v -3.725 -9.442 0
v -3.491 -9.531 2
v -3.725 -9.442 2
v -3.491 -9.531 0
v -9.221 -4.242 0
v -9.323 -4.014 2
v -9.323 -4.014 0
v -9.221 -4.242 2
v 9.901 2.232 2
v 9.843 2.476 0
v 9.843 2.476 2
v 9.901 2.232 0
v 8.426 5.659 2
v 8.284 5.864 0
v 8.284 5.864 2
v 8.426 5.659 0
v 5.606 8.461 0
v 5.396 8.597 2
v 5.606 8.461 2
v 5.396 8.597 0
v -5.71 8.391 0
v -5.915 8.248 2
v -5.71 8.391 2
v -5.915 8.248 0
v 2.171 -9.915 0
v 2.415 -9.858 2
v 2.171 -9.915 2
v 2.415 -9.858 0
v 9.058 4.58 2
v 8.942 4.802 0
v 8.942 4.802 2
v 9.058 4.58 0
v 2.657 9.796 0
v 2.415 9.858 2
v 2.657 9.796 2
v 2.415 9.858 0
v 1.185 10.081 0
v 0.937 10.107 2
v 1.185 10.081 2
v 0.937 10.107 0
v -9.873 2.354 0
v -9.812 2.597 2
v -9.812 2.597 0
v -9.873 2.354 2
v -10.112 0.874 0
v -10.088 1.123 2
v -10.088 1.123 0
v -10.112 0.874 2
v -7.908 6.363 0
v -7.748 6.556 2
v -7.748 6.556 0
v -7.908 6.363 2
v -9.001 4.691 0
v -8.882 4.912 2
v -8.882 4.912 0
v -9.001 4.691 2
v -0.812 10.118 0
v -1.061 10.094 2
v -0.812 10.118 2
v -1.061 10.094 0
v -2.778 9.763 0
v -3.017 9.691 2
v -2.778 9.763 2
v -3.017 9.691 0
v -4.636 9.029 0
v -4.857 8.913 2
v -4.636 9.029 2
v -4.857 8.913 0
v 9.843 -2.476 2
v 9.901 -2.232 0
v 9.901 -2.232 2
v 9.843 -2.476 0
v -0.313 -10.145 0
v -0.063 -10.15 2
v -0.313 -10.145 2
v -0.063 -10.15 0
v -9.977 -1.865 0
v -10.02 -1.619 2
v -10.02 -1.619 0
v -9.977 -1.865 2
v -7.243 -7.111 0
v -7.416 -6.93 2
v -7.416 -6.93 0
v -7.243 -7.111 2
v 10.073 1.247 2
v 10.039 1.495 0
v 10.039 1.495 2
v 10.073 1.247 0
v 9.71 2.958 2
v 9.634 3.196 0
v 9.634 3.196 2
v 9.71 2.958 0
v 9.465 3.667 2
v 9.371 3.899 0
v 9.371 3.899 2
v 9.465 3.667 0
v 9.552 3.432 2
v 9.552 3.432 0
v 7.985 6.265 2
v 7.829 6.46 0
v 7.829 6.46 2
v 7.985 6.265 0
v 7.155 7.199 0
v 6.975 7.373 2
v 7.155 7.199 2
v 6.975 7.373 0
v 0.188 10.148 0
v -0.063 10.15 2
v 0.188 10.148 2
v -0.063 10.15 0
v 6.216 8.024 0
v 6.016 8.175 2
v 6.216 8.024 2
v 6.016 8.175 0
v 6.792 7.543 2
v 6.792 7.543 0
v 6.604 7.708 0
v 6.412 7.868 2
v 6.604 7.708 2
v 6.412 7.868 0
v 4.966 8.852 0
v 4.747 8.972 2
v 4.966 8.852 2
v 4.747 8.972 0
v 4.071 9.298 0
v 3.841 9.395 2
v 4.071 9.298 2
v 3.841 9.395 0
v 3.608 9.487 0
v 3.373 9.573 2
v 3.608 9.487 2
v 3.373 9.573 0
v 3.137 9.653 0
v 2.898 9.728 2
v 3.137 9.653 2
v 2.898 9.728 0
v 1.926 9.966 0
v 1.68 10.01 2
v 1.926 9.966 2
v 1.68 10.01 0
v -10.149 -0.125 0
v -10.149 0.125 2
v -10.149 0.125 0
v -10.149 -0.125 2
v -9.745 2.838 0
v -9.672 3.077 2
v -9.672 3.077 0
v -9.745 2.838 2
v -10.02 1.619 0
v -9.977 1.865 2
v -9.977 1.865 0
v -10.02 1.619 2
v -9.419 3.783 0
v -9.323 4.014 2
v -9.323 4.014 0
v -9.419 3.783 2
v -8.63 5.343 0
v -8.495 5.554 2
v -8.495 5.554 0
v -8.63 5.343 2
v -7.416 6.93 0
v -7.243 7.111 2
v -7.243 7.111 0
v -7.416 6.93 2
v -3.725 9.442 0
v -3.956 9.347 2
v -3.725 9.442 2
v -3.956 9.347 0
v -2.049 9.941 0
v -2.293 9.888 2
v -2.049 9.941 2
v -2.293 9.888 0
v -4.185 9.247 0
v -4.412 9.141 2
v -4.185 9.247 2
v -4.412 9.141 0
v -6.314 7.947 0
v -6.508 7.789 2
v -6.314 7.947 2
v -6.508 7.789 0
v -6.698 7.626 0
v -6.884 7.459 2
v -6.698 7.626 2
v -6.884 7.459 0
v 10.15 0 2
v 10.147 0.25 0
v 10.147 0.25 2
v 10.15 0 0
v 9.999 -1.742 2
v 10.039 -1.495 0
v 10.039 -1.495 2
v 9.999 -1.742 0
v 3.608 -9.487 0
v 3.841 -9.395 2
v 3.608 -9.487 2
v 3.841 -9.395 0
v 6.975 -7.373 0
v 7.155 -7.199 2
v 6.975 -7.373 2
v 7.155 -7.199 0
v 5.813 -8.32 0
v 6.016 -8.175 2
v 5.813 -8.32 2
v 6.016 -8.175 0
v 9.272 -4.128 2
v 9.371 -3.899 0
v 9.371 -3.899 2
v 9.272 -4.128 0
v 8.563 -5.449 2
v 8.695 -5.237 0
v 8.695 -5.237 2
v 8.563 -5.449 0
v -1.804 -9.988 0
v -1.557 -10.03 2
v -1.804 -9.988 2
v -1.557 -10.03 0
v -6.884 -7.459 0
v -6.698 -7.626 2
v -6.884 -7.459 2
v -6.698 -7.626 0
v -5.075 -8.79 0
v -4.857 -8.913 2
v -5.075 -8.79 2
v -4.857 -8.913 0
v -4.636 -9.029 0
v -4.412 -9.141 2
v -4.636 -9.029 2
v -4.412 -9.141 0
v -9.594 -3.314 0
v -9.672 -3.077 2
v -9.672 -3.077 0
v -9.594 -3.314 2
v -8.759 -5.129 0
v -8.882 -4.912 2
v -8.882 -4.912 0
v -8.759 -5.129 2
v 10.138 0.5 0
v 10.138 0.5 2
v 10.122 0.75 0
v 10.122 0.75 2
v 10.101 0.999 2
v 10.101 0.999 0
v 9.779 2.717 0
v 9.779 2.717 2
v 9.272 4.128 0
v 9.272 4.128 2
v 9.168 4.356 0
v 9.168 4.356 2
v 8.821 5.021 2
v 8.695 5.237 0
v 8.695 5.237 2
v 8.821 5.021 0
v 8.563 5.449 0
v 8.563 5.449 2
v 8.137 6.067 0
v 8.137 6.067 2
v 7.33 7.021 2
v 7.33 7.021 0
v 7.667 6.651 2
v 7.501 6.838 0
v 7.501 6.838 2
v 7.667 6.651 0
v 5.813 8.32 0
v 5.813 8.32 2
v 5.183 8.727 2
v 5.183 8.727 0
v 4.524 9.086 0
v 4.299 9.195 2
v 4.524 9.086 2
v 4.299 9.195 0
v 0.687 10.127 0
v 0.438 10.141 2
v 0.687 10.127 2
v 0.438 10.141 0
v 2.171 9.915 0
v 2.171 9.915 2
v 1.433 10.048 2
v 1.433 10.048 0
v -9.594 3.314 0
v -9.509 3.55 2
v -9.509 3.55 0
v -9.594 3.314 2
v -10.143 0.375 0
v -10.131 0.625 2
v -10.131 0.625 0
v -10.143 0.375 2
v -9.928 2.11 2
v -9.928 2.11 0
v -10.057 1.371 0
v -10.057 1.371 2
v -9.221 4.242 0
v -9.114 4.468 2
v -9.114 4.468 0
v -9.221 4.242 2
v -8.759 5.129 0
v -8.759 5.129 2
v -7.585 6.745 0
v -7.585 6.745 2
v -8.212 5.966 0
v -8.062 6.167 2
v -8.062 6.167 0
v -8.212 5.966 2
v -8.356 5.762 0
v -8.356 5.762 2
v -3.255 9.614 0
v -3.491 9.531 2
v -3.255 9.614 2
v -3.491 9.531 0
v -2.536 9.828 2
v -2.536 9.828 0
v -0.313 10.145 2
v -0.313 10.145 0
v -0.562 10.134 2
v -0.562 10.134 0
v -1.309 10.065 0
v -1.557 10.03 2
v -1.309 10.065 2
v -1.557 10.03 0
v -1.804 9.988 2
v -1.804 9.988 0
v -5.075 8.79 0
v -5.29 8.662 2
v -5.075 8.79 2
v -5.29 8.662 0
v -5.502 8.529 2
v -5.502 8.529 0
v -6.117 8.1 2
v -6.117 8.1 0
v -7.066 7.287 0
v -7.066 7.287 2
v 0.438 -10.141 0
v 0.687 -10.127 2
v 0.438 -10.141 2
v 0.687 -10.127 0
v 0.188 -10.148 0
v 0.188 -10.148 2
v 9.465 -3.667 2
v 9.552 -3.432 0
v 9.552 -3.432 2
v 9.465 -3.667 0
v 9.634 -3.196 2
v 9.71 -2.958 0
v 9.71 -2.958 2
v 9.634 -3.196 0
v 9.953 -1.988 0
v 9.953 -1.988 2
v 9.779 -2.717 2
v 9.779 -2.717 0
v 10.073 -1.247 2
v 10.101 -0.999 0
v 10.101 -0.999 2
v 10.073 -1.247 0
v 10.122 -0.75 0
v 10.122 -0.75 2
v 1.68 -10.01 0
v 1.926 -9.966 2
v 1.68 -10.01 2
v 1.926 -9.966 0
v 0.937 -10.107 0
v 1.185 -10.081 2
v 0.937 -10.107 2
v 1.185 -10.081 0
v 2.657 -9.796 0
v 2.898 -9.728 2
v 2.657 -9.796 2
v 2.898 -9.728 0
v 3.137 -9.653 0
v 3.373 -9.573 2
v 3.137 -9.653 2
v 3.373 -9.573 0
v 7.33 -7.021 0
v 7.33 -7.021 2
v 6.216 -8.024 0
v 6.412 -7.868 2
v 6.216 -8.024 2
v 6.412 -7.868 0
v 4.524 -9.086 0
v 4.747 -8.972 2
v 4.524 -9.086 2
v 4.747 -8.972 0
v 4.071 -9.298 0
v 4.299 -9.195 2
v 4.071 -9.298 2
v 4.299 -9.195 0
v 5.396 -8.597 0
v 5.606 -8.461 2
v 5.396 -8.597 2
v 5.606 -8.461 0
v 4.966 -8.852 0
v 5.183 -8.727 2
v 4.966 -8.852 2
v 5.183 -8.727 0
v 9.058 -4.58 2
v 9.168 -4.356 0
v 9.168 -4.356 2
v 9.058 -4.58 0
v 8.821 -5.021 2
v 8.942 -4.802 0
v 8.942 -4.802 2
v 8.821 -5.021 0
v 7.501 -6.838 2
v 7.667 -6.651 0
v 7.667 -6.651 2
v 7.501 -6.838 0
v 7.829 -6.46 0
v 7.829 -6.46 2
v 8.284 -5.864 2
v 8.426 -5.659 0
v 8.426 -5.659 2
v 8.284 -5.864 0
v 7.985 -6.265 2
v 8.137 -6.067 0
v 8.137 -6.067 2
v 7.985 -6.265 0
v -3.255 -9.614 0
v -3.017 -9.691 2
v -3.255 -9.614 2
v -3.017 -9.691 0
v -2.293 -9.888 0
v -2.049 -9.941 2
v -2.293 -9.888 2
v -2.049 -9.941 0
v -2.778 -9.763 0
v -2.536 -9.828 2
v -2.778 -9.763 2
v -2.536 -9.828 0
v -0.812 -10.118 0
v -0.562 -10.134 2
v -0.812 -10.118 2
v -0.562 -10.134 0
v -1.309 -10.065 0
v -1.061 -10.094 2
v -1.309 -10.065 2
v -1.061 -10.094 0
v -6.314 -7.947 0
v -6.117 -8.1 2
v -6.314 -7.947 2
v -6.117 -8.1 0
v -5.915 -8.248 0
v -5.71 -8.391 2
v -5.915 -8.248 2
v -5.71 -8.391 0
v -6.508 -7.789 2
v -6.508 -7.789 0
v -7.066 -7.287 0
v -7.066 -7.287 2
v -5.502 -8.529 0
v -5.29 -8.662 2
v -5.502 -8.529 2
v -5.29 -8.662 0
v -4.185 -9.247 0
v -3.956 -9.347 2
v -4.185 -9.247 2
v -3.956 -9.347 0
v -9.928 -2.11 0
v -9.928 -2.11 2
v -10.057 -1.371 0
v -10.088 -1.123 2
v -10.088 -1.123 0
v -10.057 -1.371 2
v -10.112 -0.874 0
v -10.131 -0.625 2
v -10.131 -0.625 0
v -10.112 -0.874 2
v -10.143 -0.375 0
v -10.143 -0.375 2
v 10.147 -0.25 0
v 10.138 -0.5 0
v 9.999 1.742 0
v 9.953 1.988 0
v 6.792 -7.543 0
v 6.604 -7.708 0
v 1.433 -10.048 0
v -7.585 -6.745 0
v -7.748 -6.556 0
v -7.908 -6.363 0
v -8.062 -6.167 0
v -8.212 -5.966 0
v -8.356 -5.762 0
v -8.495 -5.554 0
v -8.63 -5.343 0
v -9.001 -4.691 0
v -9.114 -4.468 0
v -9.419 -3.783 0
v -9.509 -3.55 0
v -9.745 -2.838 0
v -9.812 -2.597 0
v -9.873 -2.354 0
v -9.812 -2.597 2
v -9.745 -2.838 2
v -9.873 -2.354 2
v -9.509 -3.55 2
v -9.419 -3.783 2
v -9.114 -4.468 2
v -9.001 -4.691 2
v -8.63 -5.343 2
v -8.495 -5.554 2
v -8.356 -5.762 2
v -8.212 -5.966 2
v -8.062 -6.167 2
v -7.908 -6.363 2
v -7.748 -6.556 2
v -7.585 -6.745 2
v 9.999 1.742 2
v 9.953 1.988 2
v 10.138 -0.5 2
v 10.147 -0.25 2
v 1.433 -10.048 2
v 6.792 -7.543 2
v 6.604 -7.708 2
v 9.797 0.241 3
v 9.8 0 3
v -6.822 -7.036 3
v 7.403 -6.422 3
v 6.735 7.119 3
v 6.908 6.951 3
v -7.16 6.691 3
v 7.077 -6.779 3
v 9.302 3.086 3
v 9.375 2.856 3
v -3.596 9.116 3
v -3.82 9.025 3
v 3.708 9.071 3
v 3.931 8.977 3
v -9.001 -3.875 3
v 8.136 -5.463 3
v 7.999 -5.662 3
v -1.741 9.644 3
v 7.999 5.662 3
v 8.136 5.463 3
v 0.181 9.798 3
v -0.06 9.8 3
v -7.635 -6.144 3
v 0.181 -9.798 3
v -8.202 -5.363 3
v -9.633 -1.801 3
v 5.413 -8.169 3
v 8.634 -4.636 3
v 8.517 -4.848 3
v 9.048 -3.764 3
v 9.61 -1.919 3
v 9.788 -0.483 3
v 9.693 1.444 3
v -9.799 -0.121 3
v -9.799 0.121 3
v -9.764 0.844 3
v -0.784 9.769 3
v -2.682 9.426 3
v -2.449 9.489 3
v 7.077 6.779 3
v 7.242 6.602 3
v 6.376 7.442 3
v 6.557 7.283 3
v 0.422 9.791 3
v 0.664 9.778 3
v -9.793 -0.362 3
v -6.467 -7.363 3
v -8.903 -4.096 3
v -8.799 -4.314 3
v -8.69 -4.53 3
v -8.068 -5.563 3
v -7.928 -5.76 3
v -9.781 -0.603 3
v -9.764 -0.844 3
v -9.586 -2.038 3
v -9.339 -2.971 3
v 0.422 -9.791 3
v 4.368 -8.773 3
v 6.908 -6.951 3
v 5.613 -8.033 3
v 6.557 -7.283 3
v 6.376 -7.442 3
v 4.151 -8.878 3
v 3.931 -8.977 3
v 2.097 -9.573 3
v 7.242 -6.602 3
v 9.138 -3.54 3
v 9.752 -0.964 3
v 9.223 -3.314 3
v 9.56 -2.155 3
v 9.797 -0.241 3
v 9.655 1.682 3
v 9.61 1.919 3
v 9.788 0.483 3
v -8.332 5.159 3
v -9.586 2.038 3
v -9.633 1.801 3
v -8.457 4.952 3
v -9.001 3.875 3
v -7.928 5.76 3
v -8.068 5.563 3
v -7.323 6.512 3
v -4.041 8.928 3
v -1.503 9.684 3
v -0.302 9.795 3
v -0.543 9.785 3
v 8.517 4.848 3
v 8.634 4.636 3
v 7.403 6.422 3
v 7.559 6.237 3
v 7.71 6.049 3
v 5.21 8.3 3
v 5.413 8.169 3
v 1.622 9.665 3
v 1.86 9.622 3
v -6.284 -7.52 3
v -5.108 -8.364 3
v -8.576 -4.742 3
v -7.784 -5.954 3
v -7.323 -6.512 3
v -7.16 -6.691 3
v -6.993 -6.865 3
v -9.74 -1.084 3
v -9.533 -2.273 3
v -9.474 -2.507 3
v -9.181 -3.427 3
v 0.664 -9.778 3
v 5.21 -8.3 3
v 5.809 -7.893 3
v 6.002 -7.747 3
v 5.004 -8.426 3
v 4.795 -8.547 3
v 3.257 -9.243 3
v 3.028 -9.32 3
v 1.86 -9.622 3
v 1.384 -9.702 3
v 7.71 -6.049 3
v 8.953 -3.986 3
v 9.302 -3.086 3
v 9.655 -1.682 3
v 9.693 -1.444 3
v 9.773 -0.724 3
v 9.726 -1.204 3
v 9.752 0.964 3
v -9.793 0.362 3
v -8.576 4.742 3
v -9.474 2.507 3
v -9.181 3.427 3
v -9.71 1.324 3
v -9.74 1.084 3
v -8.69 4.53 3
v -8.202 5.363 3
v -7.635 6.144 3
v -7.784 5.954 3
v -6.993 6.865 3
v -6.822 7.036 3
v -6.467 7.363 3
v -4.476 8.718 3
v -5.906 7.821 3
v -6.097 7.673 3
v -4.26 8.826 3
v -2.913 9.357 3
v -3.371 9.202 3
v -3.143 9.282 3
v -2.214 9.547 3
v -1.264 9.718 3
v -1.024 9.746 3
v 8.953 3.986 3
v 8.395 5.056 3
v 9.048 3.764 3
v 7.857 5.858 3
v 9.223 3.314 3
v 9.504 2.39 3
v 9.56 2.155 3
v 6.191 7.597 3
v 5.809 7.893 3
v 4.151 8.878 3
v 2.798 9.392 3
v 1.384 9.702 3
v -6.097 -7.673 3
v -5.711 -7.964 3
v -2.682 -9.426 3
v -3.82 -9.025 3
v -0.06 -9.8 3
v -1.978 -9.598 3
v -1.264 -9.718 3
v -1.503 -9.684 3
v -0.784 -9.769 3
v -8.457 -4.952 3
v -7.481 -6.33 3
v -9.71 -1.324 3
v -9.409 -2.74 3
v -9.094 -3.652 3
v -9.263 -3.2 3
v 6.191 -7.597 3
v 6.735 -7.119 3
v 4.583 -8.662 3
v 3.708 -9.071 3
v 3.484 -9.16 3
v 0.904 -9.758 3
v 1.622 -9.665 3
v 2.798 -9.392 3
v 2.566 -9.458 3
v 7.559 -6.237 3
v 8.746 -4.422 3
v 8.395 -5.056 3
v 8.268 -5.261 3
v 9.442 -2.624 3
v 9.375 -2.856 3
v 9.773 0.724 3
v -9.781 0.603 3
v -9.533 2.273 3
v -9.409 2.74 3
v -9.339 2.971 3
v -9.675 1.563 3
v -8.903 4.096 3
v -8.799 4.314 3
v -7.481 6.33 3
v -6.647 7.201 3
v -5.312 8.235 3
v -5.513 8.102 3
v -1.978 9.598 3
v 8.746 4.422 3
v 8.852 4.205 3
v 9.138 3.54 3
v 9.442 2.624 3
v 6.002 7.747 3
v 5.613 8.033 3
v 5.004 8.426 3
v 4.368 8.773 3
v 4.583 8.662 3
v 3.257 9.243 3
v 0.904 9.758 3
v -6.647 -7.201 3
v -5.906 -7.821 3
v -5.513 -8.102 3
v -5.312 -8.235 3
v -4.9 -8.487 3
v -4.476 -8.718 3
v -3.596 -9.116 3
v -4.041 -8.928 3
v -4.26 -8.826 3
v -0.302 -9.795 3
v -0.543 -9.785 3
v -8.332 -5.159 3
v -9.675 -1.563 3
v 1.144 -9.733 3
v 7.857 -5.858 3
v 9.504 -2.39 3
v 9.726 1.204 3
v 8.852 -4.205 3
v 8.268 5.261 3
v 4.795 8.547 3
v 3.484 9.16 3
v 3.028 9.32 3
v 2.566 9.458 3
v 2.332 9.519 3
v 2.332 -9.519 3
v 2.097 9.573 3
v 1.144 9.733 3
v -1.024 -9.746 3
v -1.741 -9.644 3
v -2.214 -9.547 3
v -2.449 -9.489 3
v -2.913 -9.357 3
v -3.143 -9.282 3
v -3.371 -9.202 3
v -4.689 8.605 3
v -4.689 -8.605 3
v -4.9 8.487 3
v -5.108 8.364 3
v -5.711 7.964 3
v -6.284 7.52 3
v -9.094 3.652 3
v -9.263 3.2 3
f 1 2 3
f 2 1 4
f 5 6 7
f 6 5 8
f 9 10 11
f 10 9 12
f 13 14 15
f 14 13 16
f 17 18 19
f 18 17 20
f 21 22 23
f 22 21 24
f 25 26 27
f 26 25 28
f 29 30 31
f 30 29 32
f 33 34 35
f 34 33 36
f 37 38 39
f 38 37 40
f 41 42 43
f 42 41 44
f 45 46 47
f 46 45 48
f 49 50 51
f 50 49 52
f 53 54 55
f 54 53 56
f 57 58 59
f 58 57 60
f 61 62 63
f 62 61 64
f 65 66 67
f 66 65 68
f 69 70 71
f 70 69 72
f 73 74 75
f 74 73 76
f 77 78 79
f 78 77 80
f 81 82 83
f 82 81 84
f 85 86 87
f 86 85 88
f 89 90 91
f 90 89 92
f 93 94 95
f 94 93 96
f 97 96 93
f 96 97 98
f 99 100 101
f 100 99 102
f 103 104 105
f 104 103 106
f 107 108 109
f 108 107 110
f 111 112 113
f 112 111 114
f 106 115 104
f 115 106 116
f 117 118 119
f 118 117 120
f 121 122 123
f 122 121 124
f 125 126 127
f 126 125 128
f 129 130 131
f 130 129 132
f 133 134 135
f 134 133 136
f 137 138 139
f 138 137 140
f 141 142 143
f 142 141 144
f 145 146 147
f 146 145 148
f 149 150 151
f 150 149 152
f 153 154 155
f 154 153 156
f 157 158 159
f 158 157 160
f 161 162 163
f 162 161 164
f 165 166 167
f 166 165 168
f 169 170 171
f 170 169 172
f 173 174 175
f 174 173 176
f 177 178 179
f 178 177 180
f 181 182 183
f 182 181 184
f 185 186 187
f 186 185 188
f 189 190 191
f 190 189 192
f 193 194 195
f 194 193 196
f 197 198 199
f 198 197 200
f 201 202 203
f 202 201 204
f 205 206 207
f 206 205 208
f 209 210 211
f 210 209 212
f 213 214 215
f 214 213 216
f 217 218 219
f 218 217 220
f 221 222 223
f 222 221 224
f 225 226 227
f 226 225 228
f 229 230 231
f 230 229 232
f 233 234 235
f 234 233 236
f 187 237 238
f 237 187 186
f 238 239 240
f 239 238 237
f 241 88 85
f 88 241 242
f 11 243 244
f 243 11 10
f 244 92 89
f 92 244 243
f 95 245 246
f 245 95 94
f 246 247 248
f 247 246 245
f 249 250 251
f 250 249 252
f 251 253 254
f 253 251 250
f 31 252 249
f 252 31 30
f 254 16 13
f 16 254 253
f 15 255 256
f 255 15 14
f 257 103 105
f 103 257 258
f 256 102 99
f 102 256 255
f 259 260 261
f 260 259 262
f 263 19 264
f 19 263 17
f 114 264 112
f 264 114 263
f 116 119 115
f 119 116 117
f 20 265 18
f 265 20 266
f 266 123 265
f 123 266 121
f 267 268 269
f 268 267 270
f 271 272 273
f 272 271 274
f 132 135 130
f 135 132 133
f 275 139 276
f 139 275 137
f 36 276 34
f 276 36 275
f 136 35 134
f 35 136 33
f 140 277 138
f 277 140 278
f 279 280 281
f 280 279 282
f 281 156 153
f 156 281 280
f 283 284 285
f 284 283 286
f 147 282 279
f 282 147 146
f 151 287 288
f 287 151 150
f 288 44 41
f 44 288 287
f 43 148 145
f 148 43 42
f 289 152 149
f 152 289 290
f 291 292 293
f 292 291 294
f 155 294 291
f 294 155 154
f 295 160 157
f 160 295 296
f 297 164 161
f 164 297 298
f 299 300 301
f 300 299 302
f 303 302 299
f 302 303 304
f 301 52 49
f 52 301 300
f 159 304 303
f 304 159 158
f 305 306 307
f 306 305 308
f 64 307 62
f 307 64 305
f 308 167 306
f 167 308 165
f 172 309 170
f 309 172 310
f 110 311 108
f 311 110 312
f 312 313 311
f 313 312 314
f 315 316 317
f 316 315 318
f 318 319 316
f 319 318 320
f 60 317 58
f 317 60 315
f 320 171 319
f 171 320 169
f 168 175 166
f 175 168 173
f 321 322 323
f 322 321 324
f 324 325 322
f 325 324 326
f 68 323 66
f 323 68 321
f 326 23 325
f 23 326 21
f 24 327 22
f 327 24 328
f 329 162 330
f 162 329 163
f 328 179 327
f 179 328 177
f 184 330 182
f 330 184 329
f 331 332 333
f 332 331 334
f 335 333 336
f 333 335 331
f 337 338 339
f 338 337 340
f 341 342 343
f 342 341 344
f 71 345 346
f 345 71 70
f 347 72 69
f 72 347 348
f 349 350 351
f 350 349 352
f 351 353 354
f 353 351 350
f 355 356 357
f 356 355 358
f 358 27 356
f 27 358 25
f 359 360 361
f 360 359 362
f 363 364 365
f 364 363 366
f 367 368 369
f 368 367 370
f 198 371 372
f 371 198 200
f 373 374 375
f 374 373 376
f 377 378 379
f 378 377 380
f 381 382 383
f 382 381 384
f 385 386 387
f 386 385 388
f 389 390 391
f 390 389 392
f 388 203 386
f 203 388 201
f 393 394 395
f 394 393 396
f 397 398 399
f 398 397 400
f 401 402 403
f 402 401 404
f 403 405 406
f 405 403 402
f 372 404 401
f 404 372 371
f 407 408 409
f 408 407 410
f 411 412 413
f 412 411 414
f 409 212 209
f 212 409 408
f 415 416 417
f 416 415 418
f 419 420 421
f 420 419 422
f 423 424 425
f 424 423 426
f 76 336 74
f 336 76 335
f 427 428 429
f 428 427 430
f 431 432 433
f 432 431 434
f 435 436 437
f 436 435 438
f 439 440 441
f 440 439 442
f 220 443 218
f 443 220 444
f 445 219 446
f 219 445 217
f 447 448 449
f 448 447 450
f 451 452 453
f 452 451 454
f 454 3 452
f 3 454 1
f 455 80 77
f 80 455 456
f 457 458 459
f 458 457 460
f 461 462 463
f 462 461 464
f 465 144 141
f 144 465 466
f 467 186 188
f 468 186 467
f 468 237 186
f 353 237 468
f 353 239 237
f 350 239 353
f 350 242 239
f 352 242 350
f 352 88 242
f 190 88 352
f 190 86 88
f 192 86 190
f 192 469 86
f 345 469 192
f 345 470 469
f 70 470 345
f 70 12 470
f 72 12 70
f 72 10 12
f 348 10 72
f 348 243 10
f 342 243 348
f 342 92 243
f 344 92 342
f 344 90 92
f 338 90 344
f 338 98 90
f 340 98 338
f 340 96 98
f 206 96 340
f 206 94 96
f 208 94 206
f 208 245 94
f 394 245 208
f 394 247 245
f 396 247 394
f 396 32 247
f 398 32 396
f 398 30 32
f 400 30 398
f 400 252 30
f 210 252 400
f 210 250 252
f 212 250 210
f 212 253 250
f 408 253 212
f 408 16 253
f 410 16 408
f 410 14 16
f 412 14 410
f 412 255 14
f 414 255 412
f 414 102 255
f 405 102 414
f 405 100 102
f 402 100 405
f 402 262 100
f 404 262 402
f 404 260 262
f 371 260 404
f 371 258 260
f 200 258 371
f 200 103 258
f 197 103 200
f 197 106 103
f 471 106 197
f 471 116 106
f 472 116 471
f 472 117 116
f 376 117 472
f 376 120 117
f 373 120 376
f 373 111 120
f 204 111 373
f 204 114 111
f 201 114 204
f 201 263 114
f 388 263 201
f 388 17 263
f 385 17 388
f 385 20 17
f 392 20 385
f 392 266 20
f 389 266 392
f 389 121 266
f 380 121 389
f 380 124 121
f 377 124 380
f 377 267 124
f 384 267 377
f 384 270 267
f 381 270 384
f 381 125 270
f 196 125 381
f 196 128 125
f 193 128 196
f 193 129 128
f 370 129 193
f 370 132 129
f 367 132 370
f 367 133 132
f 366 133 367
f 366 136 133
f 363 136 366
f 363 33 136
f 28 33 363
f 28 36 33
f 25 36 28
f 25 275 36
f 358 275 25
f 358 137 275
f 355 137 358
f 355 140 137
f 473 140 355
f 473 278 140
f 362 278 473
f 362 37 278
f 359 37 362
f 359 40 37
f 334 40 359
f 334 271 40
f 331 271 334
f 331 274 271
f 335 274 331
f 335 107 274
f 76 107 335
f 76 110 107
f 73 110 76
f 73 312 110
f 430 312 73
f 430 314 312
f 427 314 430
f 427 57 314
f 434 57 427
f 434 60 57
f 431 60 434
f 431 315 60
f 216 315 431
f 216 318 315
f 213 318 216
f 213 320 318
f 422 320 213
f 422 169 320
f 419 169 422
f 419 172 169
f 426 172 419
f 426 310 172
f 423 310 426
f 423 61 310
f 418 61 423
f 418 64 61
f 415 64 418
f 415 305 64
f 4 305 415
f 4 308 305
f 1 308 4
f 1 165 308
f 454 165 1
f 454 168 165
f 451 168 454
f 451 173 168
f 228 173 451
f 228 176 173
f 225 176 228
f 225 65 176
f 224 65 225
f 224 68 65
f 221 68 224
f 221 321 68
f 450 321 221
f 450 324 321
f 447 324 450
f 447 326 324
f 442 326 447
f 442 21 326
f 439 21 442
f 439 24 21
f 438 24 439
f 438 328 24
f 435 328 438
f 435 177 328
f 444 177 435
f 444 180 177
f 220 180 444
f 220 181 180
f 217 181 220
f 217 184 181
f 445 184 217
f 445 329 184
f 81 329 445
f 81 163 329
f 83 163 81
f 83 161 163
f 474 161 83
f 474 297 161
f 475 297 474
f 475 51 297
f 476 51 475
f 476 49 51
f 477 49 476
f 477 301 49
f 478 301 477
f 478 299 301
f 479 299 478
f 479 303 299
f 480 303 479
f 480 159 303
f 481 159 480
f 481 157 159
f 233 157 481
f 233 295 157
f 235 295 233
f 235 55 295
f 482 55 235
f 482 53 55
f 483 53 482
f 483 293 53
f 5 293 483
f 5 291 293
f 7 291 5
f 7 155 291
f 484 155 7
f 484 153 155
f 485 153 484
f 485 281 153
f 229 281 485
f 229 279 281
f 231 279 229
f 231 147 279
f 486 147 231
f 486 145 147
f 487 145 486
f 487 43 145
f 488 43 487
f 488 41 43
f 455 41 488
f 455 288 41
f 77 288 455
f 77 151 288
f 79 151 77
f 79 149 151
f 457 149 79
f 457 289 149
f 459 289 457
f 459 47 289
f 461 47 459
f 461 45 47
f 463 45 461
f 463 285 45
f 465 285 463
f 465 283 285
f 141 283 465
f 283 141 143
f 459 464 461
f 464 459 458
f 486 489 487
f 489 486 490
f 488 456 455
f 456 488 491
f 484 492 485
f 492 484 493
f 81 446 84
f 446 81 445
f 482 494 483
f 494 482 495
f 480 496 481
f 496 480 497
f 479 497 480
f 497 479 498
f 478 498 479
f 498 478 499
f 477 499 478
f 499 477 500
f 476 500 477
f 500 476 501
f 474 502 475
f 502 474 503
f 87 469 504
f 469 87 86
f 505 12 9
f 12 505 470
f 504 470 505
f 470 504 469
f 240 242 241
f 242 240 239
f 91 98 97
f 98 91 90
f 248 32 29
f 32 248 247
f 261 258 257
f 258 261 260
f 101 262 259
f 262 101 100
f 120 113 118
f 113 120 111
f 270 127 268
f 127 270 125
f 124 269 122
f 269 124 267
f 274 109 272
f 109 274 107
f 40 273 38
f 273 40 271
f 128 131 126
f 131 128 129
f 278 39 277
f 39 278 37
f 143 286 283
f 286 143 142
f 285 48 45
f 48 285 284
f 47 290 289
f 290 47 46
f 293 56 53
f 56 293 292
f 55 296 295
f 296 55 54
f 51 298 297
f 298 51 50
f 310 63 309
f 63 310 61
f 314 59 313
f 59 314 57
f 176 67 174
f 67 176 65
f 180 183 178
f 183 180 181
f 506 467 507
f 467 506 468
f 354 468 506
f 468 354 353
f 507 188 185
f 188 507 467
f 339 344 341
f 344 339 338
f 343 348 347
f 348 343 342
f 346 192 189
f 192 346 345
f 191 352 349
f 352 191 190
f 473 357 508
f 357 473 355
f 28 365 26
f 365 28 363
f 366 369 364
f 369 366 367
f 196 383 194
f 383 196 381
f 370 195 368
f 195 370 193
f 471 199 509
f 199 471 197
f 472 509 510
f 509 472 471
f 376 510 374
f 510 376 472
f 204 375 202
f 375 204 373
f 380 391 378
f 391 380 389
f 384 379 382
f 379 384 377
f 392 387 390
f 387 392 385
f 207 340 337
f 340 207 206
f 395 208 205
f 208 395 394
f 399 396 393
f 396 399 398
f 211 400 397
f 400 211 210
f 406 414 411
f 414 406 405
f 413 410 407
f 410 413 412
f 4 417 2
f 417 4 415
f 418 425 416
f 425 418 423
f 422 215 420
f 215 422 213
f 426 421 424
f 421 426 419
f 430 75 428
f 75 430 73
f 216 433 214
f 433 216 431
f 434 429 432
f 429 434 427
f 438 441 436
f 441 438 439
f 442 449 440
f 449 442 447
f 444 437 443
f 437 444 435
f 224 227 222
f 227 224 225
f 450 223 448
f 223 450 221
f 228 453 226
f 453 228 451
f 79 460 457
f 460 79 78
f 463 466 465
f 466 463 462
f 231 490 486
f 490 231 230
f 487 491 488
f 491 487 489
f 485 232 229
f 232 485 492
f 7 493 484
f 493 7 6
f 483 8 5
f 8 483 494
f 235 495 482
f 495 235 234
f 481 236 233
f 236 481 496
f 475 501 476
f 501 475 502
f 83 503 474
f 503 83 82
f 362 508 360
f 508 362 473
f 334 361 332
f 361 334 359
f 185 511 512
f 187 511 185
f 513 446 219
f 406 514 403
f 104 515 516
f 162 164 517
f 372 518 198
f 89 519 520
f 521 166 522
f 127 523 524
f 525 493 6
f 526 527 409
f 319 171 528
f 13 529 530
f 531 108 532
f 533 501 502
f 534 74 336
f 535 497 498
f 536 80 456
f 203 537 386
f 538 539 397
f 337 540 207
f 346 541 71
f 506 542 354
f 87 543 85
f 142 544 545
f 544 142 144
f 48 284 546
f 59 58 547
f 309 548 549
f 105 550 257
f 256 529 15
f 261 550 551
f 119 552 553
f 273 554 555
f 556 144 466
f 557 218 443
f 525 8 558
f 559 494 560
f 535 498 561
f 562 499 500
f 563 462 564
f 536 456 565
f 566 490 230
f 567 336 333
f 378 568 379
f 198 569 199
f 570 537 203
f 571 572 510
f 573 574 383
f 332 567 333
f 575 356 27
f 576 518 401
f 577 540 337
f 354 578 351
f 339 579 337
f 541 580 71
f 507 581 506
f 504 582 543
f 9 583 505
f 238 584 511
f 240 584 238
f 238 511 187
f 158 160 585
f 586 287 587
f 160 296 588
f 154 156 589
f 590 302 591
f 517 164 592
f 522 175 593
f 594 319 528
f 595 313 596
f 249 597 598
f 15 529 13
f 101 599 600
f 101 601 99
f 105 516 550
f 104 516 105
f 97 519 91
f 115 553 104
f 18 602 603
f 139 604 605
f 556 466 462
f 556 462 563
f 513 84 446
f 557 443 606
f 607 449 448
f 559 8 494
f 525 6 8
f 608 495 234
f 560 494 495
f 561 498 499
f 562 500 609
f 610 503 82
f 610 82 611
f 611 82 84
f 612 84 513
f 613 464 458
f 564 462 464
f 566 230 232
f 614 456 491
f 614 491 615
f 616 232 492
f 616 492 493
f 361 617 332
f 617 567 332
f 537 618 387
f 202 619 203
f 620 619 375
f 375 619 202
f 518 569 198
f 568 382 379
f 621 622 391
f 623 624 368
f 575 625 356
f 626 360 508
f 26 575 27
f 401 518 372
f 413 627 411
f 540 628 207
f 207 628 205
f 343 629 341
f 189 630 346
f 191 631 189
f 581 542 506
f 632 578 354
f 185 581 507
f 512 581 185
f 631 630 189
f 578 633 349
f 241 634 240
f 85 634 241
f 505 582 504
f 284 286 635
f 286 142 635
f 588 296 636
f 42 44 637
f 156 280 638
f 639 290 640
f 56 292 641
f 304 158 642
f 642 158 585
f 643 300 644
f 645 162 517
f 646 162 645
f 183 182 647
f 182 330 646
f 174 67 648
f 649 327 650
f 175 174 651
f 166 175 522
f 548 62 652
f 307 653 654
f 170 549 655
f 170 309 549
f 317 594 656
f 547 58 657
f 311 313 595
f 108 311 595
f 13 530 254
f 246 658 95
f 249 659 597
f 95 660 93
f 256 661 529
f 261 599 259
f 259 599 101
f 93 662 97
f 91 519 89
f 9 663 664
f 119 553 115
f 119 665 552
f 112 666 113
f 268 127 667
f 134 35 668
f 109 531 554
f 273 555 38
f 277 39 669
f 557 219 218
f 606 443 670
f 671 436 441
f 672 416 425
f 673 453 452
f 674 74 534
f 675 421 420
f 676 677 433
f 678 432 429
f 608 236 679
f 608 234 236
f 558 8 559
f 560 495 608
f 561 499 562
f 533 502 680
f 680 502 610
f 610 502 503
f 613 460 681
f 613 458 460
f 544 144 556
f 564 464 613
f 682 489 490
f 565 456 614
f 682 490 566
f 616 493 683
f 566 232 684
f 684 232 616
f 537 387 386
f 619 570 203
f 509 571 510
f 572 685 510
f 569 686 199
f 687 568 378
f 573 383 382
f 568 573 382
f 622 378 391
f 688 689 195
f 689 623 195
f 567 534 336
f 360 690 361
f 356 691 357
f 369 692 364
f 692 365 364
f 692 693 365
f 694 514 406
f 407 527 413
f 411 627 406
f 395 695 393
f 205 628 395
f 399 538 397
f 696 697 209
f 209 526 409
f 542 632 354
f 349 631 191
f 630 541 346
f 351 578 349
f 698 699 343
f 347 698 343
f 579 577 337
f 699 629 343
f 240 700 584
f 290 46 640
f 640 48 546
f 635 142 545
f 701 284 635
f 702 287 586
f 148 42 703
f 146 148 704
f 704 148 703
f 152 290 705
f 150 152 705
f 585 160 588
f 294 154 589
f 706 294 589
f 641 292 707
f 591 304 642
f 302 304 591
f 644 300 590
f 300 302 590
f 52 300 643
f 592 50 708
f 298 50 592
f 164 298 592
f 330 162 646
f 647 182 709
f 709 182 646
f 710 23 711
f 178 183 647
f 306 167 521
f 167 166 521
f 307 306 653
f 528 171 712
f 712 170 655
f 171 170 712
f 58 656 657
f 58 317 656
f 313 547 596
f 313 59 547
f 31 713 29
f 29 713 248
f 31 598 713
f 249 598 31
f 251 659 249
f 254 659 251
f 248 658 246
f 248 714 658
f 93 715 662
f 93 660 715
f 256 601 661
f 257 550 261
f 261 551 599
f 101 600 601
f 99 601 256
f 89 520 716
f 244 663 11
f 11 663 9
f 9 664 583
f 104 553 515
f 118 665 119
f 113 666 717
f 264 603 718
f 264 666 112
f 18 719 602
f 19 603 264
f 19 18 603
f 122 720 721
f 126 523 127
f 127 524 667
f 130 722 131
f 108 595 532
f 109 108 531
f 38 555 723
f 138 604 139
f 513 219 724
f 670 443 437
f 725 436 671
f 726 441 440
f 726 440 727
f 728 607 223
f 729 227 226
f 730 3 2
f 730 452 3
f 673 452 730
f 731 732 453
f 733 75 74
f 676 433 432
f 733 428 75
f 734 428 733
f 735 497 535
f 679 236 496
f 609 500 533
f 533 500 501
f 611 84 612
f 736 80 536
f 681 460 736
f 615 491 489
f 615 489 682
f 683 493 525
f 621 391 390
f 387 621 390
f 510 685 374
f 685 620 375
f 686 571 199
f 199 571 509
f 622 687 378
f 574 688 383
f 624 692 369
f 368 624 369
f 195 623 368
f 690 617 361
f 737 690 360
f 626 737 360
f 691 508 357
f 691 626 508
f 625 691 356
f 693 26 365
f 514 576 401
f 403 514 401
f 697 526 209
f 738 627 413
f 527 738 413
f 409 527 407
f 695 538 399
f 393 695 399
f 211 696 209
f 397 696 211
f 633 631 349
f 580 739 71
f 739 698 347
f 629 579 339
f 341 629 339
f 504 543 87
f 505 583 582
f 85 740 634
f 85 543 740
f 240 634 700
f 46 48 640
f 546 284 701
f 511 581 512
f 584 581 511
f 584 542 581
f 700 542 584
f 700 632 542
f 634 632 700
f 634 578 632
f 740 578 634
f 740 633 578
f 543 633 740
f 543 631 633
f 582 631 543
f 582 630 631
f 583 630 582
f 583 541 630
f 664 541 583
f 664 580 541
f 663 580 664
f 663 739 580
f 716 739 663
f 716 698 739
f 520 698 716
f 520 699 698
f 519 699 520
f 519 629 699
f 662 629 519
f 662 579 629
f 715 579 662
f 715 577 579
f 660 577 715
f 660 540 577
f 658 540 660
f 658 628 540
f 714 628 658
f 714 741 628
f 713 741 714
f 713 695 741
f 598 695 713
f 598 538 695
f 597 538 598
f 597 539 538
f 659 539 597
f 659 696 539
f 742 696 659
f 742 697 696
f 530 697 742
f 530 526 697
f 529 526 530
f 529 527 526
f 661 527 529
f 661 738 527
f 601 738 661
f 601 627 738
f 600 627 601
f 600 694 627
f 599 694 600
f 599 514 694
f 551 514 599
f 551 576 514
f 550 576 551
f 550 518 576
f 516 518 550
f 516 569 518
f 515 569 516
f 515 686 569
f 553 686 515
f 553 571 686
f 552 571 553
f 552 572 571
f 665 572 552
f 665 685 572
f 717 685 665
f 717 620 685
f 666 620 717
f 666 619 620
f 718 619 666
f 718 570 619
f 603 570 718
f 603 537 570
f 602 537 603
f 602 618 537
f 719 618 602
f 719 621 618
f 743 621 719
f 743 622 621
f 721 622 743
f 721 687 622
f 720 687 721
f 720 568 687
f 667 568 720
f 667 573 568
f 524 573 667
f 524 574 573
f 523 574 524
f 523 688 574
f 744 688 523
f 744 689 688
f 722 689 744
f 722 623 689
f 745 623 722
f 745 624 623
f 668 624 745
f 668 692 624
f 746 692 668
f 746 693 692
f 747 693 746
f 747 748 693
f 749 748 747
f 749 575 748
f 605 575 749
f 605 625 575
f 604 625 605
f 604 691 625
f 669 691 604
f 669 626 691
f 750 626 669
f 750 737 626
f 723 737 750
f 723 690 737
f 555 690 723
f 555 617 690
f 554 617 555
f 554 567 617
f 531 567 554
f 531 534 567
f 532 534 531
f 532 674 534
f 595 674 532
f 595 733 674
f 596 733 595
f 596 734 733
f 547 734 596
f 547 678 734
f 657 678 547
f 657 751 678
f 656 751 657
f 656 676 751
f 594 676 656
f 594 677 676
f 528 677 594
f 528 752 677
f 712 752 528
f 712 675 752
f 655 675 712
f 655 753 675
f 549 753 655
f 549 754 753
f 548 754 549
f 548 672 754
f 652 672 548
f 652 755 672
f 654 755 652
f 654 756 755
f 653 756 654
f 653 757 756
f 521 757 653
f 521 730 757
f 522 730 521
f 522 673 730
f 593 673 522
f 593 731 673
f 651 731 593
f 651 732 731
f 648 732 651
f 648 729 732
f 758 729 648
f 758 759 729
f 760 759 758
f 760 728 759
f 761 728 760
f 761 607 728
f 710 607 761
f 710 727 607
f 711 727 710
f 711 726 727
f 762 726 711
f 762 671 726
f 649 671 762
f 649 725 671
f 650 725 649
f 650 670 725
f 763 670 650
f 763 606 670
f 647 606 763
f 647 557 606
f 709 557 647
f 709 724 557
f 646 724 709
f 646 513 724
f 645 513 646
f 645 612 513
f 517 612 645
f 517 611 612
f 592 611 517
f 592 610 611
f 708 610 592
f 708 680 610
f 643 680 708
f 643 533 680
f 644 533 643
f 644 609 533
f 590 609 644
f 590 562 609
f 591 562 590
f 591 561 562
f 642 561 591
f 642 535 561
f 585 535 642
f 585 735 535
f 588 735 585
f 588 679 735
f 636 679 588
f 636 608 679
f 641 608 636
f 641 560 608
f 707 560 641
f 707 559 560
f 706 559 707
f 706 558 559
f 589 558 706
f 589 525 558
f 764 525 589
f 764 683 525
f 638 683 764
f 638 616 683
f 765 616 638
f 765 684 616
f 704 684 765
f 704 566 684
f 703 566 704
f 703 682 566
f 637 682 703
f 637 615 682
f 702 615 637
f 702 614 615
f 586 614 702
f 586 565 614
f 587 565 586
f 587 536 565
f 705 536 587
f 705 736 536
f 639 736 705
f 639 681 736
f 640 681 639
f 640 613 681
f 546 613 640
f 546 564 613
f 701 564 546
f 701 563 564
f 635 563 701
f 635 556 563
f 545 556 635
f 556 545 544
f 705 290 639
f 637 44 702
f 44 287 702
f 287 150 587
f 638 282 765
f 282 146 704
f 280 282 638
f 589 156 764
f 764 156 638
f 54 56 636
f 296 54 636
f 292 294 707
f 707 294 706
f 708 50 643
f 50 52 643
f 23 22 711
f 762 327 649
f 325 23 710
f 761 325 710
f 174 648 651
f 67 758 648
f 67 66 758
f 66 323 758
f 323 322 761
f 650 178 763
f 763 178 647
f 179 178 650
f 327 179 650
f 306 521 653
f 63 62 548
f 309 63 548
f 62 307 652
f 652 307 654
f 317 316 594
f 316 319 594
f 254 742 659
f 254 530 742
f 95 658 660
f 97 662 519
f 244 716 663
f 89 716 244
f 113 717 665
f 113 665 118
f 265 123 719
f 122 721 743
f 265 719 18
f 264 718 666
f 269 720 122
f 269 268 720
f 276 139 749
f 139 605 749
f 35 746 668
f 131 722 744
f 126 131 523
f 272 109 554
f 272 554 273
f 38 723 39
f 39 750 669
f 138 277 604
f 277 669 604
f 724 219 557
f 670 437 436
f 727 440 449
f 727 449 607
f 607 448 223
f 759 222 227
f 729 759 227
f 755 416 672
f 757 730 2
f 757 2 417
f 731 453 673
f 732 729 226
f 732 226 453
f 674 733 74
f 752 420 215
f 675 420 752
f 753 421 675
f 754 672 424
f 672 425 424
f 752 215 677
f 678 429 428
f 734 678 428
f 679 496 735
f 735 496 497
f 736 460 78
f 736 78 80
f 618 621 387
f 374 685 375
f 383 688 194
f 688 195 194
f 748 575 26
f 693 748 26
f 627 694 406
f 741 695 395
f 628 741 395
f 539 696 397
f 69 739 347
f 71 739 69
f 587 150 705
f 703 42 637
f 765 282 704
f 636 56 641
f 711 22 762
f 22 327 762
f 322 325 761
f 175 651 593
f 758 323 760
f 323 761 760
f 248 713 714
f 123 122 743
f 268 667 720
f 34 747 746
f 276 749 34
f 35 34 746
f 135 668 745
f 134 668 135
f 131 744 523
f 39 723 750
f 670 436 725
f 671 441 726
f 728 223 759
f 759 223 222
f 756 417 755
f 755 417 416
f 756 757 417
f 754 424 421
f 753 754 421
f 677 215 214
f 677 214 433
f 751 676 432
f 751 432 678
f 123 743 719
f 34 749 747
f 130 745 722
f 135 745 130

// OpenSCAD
H = 2;
R = 10.15;


cylinder(r=R, h=H, $fn=255);

translate([0, 0, H])
  cylinder(h = 1, r1 = R, r2 = 9.8, $fn=255);
